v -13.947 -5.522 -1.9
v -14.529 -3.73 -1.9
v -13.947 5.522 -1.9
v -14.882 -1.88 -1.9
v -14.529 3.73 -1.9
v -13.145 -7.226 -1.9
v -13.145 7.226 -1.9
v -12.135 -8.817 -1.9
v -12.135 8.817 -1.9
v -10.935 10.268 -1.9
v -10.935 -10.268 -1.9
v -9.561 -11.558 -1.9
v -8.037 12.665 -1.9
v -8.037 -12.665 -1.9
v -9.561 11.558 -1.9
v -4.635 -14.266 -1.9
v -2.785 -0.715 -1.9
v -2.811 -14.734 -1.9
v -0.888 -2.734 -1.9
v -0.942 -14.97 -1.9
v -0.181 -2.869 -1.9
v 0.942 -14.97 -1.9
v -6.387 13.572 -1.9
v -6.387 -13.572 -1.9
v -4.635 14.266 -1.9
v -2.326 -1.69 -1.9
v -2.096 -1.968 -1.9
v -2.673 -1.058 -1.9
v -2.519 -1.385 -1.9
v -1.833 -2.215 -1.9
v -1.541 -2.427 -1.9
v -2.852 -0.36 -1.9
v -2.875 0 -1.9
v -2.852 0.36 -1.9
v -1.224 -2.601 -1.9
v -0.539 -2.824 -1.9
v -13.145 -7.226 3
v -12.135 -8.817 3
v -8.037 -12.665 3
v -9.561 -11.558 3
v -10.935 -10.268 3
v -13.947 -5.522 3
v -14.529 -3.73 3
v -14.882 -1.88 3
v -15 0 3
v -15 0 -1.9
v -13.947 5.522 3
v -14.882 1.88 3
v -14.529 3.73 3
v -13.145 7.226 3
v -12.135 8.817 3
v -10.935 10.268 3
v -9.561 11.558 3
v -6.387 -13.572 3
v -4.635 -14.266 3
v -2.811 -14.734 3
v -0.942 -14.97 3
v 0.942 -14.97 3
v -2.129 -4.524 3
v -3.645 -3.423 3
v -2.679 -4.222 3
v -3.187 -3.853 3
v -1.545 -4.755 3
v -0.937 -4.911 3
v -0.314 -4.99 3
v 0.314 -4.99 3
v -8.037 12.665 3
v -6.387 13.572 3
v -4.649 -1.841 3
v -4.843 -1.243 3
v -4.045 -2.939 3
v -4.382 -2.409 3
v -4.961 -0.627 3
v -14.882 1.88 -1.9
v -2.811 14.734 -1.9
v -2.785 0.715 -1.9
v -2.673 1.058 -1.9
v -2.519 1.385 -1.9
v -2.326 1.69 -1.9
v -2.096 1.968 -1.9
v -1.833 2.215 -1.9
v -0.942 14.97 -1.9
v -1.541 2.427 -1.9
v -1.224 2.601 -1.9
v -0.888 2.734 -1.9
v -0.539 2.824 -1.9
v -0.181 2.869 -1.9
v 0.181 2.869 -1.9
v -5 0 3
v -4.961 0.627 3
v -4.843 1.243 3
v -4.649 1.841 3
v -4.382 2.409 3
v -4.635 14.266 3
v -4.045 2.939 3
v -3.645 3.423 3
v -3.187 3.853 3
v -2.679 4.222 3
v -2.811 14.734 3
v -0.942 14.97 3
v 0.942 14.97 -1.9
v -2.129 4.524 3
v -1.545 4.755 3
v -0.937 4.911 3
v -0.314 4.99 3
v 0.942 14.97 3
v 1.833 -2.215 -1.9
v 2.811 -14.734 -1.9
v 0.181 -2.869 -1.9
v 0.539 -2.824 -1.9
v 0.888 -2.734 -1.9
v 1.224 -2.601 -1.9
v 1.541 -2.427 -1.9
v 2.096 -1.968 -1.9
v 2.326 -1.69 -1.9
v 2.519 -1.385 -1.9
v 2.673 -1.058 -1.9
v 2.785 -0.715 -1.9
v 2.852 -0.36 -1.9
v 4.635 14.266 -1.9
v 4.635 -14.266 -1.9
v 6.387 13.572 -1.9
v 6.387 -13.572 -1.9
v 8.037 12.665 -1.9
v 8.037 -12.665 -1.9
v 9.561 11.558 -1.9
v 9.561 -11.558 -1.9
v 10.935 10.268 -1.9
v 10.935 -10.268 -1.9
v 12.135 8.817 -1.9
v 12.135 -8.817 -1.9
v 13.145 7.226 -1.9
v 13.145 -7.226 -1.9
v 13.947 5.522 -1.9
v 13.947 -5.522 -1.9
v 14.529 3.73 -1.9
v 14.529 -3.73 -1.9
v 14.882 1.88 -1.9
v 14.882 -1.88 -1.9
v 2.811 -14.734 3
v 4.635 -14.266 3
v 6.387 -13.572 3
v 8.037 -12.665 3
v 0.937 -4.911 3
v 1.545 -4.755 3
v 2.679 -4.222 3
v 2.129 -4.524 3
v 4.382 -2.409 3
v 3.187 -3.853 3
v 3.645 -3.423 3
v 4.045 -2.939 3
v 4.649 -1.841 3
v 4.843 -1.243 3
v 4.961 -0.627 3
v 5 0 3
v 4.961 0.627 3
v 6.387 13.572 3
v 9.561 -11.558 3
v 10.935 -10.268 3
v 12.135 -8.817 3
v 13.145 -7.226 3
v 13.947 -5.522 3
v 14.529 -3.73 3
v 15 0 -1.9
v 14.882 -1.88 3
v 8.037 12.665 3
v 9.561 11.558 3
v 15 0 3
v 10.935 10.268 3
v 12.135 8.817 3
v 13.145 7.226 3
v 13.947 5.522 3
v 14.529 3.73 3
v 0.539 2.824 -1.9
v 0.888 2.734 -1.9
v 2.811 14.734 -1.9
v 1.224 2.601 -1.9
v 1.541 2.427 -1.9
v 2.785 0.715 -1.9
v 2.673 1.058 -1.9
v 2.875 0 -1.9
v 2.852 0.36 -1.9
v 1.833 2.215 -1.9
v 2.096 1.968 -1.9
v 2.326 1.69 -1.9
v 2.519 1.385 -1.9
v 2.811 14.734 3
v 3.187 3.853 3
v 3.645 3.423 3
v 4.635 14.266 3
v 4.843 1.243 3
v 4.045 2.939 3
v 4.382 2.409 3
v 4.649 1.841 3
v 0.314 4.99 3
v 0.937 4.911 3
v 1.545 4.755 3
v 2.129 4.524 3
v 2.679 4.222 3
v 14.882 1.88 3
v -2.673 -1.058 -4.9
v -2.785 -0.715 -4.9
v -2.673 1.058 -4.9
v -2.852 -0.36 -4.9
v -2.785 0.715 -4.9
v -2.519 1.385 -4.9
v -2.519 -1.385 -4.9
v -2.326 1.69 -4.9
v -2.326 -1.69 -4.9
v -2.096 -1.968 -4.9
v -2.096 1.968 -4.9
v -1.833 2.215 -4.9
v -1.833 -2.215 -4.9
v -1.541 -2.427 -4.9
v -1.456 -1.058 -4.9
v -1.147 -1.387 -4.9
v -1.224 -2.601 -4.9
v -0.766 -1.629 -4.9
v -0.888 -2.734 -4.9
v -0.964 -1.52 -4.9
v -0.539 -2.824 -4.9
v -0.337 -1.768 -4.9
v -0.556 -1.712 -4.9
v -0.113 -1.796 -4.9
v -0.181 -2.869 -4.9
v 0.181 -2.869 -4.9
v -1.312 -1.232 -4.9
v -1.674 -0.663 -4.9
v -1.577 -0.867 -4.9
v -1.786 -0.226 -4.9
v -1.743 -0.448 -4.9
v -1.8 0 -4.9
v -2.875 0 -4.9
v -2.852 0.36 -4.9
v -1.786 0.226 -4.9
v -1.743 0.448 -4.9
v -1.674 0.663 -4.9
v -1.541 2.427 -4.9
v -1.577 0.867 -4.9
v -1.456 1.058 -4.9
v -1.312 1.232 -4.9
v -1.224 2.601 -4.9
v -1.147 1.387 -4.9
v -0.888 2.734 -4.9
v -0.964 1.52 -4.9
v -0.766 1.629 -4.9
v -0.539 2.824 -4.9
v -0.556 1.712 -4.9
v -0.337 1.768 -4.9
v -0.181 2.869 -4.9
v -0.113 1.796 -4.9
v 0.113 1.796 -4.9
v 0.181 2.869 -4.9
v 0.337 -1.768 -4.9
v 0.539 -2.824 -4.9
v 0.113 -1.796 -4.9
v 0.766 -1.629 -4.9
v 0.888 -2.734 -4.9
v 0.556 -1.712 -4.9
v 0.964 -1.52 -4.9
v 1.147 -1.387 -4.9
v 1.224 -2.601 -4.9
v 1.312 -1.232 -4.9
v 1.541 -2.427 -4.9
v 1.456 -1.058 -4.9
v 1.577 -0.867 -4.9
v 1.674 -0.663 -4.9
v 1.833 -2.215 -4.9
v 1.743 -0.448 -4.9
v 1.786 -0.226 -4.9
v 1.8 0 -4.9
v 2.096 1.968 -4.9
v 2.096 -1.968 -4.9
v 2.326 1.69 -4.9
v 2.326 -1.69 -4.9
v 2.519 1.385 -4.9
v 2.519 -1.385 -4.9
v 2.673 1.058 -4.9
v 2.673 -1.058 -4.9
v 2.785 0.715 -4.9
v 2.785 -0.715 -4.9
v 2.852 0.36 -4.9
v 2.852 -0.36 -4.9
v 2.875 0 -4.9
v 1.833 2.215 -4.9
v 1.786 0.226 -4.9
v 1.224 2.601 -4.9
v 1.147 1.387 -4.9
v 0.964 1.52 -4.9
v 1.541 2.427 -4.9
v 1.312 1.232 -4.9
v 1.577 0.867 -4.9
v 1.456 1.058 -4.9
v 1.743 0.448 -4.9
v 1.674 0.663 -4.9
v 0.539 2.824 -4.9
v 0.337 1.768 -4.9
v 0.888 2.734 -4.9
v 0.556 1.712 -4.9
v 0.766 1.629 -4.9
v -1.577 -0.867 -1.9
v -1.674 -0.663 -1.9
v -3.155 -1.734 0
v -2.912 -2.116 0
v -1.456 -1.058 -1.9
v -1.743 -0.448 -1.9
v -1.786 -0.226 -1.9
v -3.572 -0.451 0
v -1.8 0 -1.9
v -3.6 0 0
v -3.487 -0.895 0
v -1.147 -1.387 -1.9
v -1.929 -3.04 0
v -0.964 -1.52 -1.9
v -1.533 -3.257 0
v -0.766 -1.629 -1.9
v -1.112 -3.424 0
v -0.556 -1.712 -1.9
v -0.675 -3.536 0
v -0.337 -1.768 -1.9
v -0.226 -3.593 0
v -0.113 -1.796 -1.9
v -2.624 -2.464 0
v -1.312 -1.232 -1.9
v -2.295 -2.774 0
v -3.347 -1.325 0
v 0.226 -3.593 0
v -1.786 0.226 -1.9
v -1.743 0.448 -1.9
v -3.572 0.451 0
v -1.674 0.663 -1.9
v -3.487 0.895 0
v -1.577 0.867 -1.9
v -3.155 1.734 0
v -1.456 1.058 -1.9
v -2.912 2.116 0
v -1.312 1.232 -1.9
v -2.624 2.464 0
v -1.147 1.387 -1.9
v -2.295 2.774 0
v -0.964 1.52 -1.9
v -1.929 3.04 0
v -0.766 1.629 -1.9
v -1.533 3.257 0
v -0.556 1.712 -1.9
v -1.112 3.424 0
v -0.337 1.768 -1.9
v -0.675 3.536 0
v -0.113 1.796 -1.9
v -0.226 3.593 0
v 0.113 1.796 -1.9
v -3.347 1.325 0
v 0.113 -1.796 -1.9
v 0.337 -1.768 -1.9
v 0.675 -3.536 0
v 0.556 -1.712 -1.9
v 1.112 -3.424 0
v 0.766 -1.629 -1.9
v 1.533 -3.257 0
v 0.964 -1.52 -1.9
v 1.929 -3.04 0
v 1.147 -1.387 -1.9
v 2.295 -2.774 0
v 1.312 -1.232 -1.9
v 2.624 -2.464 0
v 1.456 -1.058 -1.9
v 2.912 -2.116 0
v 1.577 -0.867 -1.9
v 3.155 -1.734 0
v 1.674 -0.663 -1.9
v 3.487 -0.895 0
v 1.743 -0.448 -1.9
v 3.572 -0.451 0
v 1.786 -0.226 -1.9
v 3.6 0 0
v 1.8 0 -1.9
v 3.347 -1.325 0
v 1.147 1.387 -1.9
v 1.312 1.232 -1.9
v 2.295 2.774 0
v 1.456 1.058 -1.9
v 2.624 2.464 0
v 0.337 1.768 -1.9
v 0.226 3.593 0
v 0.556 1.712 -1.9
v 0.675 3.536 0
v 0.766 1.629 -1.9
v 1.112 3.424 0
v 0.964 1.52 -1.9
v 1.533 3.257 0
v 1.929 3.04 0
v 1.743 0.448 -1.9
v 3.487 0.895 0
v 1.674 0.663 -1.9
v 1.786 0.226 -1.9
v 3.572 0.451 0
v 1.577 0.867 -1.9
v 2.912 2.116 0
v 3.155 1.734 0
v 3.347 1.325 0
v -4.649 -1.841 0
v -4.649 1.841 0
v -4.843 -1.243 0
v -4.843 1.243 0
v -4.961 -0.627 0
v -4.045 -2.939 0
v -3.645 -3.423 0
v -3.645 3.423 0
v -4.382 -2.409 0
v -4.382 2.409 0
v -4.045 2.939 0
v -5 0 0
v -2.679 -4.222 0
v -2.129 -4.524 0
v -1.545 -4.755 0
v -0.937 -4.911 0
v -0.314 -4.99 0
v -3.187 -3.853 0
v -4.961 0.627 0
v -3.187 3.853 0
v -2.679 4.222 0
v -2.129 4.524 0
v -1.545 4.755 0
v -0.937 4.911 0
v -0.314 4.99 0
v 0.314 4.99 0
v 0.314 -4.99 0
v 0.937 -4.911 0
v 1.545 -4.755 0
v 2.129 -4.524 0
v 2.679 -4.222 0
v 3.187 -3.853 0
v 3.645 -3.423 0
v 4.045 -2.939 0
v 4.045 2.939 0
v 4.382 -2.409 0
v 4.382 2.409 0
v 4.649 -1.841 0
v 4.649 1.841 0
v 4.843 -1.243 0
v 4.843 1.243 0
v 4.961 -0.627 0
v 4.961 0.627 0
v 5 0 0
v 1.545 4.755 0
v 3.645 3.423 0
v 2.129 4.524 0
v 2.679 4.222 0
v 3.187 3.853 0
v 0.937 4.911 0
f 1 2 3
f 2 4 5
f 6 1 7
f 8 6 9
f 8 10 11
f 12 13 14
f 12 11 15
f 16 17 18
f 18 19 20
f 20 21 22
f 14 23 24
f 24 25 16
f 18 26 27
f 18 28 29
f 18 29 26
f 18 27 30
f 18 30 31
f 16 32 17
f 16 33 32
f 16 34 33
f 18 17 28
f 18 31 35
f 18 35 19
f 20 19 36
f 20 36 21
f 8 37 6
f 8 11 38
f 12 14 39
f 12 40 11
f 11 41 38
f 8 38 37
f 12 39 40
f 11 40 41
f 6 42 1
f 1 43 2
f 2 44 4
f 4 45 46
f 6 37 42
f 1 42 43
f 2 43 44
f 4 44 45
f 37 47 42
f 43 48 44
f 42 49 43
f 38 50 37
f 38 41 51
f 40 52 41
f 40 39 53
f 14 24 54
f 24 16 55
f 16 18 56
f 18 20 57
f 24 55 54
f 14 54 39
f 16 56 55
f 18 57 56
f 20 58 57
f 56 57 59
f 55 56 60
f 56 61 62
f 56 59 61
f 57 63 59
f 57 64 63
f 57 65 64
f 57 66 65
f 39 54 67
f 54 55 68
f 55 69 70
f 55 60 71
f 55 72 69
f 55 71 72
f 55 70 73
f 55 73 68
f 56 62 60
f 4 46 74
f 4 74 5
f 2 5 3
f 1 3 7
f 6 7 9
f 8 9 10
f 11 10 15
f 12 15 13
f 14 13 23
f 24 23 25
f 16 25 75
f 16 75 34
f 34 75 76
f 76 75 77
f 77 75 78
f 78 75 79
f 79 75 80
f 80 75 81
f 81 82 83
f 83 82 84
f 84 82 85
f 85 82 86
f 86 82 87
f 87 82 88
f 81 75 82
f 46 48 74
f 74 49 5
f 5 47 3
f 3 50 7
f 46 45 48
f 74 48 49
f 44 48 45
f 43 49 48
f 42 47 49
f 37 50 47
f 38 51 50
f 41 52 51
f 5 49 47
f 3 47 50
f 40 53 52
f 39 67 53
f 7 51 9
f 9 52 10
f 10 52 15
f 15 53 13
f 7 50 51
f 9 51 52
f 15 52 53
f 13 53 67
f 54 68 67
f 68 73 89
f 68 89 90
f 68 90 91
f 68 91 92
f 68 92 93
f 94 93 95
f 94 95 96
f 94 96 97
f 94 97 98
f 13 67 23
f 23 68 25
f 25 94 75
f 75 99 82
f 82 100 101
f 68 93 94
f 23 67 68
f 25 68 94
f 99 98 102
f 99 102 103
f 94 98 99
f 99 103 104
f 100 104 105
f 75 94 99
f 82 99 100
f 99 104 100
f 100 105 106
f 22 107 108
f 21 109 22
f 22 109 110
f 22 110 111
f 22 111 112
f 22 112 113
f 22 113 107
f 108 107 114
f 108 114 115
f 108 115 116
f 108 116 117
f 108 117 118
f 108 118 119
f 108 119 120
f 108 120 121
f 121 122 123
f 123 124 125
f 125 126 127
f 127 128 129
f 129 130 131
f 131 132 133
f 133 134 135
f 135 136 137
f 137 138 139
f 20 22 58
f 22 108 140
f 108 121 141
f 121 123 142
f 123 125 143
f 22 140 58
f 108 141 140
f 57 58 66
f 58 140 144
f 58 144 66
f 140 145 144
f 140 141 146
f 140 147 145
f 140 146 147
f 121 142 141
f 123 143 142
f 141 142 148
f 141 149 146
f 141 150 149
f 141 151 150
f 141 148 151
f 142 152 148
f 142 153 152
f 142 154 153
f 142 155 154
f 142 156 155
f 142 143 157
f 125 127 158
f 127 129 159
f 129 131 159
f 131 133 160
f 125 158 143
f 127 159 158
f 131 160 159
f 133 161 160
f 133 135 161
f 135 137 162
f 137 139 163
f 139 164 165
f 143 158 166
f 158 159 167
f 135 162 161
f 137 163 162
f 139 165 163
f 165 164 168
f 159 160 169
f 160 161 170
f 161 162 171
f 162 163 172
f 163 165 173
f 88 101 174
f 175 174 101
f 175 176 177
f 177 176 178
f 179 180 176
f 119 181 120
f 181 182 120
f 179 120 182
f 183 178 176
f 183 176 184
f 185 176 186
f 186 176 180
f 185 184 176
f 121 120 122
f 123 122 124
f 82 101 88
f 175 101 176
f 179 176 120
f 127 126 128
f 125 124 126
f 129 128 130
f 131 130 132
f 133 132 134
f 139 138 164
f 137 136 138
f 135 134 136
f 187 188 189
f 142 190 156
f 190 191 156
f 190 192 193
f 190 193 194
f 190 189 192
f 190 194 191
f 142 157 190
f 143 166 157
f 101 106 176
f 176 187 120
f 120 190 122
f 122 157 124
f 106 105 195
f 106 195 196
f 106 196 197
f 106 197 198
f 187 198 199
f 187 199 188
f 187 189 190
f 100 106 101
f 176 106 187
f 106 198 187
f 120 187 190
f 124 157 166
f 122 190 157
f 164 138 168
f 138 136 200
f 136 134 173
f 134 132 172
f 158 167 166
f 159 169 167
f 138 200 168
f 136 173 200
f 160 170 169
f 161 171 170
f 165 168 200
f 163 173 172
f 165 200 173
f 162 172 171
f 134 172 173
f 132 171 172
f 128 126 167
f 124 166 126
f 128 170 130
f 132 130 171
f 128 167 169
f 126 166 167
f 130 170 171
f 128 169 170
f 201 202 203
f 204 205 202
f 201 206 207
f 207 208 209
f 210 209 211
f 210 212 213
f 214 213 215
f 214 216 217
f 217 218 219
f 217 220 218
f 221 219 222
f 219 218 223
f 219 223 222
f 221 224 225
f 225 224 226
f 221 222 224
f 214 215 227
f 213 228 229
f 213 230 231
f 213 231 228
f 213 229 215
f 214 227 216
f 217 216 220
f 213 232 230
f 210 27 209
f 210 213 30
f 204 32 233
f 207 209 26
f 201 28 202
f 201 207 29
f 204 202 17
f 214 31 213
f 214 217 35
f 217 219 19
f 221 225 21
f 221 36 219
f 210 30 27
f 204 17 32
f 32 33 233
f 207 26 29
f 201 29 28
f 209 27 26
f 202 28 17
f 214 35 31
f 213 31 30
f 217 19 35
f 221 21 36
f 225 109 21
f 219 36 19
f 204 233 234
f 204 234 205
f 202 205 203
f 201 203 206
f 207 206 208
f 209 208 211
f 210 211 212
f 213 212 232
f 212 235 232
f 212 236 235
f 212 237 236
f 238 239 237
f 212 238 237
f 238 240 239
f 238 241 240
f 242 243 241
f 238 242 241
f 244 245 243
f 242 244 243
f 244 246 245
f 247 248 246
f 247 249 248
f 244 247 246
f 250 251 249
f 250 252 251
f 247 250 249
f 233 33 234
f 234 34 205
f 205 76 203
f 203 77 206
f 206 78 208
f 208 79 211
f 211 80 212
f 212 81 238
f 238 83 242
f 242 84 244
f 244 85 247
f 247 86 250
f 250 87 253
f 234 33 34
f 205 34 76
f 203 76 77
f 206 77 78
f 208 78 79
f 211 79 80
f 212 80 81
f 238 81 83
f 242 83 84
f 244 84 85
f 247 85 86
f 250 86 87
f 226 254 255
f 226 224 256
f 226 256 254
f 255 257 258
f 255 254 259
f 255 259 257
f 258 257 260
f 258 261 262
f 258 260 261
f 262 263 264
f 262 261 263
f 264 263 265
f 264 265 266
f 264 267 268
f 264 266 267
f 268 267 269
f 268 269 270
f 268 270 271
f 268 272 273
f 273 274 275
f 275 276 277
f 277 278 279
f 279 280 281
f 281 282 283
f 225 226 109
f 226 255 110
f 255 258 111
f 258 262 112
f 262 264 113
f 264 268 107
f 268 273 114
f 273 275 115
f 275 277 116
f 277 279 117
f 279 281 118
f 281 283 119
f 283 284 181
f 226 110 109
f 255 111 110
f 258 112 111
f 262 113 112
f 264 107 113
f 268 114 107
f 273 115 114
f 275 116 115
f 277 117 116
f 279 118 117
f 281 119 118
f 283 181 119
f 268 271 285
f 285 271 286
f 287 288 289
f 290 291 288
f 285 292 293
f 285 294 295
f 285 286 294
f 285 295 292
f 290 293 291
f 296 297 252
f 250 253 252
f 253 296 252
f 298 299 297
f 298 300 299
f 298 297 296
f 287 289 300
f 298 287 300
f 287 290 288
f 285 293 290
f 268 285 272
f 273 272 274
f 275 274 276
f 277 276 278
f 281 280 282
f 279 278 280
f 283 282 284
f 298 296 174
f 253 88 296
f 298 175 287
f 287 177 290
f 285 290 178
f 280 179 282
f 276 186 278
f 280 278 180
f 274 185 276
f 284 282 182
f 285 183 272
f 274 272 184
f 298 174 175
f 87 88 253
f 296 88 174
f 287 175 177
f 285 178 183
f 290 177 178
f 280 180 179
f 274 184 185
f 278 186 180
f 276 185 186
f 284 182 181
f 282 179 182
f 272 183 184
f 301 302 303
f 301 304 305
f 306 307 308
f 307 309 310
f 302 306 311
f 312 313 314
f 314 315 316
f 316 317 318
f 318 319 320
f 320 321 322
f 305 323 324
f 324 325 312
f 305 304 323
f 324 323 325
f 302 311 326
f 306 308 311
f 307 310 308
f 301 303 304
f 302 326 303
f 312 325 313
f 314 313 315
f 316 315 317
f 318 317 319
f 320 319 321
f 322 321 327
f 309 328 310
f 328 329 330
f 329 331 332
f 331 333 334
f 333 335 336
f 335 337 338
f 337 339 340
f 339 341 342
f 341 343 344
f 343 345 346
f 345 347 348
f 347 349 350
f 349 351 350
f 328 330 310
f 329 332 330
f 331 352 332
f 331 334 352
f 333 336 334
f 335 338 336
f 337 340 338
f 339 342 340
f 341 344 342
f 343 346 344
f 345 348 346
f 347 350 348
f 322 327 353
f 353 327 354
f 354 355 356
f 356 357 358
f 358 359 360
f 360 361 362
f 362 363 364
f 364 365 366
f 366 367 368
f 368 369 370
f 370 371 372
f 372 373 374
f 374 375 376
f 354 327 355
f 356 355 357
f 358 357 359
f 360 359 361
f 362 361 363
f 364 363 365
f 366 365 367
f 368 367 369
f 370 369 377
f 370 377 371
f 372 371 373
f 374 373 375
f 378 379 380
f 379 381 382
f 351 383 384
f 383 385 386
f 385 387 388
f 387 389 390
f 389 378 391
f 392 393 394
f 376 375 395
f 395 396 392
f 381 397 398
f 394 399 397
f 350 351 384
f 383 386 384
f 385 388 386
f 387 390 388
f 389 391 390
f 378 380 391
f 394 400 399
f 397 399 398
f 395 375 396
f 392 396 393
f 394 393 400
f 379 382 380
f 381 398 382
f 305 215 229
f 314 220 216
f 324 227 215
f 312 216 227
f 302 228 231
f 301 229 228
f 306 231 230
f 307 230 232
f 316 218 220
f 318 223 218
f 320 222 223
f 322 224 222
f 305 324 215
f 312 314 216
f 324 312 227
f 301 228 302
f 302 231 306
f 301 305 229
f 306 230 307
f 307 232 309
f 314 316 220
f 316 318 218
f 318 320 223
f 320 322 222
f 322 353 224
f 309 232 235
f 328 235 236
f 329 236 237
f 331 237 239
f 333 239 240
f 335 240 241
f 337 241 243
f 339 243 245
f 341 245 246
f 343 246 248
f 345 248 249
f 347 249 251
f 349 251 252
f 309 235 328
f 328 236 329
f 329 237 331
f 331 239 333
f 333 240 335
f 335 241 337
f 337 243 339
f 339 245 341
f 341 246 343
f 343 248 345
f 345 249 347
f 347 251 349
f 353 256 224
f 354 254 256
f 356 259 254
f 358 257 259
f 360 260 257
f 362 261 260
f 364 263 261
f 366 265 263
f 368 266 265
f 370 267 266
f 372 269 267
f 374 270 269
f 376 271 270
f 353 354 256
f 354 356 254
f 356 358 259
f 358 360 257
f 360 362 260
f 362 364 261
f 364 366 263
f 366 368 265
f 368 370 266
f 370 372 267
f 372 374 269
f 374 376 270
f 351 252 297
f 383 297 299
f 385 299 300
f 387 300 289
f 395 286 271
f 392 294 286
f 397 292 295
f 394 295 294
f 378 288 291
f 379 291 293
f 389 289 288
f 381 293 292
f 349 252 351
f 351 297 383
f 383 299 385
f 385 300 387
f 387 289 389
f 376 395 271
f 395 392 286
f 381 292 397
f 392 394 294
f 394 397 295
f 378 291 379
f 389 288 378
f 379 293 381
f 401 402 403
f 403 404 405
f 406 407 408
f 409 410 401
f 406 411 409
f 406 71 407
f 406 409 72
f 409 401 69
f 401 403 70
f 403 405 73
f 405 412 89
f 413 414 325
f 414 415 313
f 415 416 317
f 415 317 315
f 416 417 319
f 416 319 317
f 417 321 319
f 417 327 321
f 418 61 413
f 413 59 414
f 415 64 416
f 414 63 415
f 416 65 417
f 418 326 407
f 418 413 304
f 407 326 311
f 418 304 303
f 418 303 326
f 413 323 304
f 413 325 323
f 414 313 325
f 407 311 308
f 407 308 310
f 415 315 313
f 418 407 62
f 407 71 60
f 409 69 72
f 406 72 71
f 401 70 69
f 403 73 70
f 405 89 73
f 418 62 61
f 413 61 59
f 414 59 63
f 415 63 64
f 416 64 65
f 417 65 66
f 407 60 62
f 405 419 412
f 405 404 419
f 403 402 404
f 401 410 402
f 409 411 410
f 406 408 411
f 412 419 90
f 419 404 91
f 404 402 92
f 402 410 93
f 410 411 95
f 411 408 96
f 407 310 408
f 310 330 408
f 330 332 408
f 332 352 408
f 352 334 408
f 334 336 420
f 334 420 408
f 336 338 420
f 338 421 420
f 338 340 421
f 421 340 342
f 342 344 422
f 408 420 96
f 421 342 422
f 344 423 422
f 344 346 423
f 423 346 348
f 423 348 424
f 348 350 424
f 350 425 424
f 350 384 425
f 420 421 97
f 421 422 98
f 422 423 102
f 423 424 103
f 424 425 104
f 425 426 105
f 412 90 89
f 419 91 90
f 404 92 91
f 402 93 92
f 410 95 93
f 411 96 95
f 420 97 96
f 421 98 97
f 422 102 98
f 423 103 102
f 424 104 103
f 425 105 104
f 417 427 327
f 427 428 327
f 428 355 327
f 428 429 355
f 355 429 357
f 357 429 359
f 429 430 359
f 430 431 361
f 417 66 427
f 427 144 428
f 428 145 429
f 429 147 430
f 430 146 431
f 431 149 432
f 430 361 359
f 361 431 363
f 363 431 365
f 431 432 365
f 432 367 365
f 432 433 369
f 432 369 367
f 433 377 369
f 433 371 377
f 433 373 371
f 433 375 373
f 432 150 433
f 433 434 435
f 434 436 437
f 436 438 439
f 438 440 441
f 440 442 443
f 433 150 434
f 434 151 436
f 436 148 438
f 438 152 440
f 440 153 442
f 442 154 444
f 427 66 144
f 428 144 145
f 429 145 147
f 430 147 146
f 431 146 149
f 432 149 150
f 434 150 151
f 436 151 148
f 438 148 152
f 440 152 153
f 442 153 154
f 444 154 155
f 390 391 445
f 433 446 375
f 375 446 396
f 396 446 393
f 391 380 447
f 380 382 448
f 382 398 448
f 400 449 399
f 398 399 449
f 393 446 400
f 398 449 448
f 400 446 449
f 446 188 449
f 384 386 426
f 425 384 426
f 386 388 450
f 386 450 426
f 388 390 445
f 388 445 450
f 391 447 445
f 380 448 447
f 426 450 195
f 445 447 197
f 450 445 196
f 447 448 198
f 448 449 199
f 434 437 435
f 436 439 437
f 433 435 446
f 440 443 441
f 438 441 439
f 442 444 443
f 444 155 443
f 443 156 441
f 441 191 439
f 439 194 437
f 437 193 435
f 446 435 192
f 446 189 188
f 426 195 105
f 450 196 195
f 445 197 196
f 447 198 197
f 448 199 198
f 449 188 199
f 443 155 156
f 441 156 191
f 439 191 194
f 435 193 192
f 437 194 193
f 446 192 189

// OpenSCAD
$fn = 50;

difference() {
	union() {
		translate(v = [0, 0, -1.9000000000000004]) {
			cylinder(h = 4.9, r = 15.0);
		}
		#translate(v = [0, 0, -4.9]) {
			cylinder(h = 4.9, r = 2.875);
		}
	}
	union() {
		translate(v = [0, 0, 0]) {
			rotate(a = [0, 0, 0]) {
				difference() {
					union() {
						translate(v = [0, 0, -4.9]) {
							cylinder(h = 4.9, r = 1.5);
						}
						translate(v = [0, 0, -1.9]) {
							cylinder(h = 1.9, r1 = 1.8, r2 = 3.6);
						}
						translate(v = [0, 0, -4.9]) {
							cylinder(h = 4.9, r = 1.8);
						}
						translate(v = [0, 0, -4.9]) {
							cylinder(h = 4.9, r = 1.5);
						}
					}
					union();
				}
			}
		}
		#cylinder(h = 3, r = 5.0);
	}
}
